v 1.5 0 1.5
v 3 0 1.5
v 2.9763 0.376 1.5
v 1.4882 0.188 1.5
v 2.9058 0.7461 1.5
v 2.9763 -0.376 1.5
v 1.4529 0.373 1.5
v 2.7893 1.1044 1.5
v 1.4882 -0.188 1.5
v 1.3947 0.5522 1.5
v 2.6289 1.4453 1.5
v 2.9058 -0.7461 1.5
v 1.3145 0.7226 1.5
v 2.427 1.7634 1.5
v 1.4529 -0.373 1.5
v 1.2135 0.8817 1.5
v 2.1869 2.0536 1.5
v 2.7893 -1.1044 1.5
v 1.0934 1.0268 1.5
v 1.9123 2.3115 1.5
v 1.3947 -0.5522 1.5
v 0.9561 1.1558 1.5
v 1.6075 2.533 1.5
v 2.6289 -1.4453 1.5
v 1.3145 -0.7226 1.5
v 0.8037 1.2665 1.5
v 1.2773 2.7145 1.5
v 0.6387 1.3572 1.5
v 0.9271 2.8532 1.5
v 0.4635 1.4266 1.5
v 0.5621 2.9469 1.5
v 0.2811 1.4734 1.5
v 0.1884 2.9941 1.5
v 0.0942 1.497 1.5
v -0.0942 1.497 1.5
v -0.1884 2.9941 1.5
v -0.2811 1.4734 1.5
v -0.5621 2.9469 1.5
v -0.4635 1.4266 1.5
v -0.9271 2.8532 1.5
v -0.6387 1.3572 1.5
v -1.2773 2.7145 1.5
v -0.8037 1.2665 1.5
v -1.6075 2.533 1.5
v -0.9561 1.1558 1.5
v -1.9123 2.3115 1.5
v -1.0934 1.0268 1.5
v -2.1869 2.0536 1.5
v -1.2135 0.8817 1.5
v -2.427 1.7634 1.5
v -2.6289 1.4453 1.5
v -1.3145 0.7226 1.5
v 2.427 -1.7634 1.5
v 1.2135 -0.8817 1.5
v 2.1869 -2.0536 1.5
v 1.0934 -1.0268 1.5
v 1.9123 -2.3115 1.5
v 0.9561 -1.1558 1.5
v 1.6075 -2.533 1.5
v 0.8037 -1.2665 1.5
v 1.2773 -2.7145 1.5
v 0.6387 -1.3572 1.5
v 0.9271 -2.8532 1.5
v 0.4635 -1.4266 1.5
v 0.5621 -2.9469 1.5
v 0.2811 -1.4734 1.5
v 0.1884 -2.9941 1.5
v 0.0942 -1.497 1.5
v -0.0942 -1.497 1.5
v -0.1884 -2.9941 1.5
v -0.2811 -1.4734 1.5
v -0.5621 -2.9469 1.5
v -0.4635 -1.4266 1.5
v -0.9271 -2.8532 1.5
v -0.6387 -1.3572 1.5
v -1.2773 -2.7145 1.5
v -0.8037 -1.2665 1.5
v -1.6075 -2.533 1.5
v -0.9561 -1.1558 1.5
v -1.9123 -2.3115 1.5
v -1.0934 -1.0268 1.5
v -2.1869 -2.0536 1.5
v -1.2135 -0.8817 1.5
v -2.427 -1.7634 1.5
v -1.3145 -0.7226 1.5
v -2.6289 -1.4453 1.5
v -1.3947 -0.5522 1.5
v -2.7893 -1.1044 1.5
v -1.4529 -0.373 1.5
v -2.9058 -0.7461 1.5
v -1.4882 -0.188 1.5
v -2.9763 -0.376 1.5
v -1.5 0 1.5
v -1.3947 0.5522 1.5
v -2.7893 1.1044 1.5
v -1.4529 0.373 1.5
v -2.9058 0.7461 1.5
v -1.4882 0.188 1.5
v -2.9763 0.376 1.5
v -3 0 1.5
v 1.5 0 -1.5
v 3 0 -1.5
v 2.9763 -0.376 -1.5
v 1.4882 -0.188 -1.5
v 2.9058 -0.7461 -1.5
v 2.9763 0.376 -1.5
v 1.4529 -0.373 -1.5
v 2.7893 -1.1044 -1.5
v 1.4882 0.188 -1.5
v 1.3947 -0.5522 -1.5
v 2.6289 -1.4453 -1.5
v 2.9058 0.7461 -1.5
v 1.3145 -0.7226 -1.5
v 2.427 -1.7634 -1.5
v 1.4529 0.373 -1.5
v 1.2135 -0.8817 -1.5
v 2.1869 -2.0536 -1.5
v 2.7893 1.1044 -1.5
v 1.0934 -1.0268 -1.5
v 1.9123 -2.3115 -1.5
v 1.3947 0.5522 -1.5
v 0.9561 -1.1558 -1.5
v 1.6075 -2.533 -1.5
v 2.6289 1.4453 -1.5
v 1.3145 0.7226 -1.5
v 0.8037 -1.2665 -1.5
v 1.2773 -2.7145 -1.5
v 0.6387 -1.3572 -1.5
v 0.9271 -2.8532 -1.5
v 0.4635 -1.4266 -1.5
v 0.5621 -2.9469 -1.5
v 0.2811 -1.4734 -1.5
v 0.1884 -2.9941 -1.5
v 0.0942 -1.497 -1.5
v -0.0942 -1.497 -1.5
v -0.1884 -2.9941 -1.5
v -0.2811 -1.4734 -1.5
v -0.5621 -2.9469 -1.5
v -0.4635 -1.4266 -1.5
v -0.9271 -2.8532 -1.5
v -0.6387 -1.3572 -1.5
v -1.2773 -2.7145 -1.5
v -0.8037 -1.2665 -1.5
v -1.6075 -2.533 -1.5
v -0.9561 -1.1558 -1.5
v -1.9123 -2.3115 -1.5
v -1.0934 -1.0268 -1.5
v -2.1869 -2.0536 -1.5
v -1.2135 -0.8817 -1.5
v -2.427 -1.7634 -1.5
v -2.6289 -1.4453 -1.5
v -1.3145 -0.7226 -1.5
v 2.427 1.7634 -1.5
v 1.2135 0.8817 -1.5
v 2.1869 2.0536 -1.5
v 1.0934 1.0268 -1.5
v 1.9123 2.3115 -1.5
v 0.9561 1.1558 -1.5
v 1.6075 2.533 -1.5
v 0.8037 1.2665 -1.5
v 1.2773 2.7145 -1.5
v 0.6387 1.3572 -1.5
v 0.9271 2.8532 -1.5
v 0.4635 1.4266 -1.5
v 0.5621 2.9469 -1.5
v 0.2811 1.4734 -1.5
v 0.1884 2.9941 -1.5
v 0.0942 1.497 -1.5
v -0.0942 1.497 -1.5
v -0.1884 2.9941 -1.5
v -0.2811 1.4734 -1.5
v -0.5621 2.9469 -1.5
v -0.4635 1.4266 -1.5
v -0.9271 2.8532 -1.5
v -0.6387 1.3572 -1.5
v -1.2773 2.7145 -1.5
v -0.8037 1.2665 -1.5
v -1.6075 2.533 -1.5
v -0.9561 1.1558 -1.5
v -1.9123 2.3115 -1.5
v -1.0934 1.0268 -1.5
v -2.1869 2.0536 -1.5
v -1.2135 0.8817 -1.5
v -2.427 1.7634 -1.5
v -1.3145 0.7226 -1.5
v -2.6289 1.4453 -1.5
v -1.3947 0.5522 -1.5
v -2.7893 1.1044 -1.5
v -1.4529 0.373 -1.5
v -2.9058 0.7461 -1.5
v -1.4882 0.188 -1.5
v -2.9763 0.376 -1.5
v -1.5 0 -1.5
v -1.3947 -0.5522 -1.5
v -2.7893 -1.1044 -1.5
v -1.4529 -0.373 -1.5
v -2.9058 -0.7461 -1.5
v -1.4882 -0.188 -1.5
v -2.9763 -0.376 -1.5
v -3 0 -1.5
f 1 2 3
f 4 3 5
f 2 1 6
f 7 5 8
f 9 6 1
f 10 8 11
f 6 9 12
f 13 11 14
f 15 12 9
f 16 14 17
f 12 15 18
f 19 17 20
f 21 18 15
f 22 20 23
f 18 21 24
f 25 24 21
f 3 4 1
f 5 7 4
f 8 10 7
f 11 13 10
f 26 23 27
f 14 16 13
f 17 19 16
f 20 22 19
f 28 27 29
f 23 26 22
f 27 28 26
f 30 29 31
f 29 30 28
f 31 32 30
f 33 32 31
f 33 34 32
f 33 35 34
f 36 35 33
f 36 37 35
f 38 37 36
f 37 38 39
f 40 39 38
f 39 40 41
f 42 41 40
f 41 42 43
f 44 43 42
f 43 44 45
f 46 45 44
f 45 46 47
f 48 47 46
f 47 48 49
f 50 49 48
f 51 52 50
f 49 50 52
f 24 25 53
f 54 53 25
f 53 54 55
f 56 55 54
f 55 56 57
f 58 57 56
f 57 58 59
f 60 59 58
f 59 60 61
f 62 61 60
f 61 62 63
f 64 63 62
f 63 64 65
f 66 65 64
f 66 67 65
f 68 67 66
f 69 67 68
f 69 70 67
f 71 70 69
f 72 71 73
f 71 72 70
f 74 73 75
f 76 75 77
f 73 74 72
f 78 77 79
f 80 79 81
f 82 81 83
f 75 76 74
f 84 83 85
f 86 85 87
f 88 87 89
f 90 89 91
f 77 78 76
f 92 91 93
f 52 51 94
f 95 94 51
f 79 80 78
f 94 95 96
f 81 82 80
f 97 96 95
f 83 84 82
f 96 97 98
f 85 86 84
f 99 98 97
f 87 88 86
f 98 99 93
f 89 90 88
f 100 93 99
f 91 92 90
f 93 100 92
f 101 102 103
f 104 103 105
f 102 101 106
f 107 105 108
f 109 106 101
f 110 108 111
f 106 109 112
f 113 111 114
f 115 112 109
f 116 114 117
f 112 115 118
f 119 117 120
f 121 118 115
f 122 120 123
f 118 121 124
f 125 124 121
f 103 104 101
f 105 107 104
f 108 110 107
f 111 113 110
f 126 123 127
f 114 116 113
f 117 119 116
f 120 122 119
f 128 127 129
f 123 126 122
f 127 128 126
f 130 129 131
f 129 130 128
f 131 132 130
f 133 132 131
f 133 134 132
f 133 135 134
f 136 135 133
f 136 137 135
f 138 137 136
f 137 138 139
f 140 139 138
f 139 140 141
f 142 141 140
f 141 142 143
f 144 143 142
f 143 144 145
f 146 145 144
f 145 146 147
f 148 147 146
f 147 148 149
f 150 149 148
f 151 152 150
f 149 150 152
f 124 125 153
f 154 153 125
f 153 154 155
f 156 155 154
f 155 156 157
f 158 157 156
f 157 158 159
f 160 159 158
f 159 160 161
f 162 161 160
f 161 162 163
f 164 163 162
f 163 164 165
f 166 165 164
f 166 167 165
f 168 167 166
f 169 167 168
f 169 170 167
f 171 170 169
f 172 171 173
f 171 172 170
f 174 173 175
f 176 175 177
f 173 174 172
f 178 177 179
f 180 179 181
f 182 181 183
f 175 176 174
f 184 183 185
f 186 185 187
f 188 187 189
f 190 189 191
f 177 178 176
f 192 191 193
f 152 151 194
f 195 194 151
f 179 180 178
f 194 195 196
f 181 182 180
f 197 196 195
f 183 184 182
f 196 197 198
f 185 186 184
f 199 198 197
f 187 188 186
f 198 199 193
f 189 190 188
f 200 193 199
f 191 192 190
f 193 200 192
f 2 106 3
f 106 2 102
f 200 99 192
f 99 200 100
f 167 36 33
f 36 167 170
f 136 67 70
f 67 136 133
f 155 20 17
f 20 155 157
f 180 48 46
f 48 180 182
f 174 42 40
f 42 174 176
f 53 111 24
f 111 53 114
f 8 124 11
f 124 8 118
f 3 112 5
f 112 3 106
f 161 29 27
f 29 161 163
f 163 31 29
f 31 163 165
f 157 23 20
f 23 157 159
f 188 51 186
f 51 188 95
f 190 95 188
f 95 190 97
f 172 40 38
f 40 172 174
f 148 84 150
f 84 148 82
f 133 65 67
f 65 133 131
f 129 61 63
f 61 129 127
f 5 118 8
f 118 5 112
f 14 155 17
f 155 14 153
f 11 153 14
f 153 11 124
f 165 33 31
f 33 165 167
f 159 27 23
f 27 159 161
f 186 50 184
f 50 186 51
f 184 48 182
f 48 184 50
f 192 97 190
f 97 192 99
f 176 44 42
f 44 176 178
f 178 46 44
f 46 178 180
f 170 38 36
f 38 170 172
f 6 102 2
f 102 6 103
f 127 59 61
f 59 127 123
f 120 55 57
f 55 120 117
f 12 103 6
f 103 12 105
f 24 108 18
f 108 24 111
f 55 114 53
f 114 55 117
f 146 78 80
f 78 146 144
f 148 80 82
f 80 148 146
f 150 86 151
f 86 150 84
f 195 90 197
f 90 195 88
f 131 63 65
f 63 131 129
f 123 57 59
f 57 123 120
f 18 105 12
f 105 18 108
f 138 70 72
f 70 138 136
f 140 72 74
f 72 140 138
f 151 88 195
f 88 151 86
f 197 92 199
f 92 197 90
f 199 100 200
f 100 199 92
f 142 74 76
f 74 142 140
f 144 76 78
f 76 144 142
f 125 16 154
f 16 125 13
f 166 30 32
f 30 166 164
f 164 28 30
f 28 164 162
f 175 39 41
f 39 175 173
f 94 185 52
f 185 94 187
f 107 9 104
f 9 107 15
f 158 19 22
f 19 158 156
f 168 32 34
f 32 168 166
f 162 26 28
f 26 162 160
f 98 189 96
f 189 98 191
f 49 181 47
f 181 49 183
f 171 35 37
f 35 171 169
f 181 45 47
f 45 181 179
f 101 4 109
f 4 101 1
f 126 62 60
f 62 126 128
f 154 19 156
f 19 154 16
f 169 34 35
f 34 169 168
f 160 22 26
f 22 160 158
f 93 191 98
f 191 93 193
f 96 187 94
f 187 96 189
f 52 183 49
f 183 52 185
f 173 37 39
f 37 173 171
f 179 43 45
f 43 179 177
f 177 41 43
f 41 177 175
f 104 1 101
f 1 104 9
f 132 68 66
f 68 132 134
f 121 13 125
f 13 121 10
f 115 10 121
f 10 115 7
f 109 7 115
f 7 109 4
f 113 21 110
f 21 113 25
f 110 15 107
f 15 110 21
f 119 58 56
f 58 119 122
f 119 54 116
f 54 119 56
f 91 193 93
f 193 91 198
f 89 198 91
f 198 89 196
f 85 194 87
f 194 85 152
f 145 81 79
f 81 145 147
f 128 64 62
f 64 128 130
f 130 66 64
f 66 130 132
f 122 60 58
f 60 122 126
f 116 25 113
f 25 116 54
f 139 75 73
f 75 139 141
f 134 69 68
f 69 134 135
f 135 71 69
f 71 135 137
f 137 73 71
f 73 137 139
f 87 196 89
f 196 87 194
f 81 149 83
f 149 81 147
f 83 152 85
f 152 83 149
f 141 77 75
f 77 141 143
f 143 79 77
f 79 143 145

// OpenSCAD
$fn = 50;


difference() {
	union() {
		translate(v = [0, 0, -1.5000000000]) {
			cylinder(h = 3, r = 1.0000000000);
		}
		translate(v = [0, 0, -1.5000000000]) {
			cylinder(h = 3, r = 3.0000000000);
		}
	}
	union() {
		translate(v = [0, 0, -50.0000000000]) {
			cylinder(h = 100, r = 1.5000000000);
		}
	}
}
